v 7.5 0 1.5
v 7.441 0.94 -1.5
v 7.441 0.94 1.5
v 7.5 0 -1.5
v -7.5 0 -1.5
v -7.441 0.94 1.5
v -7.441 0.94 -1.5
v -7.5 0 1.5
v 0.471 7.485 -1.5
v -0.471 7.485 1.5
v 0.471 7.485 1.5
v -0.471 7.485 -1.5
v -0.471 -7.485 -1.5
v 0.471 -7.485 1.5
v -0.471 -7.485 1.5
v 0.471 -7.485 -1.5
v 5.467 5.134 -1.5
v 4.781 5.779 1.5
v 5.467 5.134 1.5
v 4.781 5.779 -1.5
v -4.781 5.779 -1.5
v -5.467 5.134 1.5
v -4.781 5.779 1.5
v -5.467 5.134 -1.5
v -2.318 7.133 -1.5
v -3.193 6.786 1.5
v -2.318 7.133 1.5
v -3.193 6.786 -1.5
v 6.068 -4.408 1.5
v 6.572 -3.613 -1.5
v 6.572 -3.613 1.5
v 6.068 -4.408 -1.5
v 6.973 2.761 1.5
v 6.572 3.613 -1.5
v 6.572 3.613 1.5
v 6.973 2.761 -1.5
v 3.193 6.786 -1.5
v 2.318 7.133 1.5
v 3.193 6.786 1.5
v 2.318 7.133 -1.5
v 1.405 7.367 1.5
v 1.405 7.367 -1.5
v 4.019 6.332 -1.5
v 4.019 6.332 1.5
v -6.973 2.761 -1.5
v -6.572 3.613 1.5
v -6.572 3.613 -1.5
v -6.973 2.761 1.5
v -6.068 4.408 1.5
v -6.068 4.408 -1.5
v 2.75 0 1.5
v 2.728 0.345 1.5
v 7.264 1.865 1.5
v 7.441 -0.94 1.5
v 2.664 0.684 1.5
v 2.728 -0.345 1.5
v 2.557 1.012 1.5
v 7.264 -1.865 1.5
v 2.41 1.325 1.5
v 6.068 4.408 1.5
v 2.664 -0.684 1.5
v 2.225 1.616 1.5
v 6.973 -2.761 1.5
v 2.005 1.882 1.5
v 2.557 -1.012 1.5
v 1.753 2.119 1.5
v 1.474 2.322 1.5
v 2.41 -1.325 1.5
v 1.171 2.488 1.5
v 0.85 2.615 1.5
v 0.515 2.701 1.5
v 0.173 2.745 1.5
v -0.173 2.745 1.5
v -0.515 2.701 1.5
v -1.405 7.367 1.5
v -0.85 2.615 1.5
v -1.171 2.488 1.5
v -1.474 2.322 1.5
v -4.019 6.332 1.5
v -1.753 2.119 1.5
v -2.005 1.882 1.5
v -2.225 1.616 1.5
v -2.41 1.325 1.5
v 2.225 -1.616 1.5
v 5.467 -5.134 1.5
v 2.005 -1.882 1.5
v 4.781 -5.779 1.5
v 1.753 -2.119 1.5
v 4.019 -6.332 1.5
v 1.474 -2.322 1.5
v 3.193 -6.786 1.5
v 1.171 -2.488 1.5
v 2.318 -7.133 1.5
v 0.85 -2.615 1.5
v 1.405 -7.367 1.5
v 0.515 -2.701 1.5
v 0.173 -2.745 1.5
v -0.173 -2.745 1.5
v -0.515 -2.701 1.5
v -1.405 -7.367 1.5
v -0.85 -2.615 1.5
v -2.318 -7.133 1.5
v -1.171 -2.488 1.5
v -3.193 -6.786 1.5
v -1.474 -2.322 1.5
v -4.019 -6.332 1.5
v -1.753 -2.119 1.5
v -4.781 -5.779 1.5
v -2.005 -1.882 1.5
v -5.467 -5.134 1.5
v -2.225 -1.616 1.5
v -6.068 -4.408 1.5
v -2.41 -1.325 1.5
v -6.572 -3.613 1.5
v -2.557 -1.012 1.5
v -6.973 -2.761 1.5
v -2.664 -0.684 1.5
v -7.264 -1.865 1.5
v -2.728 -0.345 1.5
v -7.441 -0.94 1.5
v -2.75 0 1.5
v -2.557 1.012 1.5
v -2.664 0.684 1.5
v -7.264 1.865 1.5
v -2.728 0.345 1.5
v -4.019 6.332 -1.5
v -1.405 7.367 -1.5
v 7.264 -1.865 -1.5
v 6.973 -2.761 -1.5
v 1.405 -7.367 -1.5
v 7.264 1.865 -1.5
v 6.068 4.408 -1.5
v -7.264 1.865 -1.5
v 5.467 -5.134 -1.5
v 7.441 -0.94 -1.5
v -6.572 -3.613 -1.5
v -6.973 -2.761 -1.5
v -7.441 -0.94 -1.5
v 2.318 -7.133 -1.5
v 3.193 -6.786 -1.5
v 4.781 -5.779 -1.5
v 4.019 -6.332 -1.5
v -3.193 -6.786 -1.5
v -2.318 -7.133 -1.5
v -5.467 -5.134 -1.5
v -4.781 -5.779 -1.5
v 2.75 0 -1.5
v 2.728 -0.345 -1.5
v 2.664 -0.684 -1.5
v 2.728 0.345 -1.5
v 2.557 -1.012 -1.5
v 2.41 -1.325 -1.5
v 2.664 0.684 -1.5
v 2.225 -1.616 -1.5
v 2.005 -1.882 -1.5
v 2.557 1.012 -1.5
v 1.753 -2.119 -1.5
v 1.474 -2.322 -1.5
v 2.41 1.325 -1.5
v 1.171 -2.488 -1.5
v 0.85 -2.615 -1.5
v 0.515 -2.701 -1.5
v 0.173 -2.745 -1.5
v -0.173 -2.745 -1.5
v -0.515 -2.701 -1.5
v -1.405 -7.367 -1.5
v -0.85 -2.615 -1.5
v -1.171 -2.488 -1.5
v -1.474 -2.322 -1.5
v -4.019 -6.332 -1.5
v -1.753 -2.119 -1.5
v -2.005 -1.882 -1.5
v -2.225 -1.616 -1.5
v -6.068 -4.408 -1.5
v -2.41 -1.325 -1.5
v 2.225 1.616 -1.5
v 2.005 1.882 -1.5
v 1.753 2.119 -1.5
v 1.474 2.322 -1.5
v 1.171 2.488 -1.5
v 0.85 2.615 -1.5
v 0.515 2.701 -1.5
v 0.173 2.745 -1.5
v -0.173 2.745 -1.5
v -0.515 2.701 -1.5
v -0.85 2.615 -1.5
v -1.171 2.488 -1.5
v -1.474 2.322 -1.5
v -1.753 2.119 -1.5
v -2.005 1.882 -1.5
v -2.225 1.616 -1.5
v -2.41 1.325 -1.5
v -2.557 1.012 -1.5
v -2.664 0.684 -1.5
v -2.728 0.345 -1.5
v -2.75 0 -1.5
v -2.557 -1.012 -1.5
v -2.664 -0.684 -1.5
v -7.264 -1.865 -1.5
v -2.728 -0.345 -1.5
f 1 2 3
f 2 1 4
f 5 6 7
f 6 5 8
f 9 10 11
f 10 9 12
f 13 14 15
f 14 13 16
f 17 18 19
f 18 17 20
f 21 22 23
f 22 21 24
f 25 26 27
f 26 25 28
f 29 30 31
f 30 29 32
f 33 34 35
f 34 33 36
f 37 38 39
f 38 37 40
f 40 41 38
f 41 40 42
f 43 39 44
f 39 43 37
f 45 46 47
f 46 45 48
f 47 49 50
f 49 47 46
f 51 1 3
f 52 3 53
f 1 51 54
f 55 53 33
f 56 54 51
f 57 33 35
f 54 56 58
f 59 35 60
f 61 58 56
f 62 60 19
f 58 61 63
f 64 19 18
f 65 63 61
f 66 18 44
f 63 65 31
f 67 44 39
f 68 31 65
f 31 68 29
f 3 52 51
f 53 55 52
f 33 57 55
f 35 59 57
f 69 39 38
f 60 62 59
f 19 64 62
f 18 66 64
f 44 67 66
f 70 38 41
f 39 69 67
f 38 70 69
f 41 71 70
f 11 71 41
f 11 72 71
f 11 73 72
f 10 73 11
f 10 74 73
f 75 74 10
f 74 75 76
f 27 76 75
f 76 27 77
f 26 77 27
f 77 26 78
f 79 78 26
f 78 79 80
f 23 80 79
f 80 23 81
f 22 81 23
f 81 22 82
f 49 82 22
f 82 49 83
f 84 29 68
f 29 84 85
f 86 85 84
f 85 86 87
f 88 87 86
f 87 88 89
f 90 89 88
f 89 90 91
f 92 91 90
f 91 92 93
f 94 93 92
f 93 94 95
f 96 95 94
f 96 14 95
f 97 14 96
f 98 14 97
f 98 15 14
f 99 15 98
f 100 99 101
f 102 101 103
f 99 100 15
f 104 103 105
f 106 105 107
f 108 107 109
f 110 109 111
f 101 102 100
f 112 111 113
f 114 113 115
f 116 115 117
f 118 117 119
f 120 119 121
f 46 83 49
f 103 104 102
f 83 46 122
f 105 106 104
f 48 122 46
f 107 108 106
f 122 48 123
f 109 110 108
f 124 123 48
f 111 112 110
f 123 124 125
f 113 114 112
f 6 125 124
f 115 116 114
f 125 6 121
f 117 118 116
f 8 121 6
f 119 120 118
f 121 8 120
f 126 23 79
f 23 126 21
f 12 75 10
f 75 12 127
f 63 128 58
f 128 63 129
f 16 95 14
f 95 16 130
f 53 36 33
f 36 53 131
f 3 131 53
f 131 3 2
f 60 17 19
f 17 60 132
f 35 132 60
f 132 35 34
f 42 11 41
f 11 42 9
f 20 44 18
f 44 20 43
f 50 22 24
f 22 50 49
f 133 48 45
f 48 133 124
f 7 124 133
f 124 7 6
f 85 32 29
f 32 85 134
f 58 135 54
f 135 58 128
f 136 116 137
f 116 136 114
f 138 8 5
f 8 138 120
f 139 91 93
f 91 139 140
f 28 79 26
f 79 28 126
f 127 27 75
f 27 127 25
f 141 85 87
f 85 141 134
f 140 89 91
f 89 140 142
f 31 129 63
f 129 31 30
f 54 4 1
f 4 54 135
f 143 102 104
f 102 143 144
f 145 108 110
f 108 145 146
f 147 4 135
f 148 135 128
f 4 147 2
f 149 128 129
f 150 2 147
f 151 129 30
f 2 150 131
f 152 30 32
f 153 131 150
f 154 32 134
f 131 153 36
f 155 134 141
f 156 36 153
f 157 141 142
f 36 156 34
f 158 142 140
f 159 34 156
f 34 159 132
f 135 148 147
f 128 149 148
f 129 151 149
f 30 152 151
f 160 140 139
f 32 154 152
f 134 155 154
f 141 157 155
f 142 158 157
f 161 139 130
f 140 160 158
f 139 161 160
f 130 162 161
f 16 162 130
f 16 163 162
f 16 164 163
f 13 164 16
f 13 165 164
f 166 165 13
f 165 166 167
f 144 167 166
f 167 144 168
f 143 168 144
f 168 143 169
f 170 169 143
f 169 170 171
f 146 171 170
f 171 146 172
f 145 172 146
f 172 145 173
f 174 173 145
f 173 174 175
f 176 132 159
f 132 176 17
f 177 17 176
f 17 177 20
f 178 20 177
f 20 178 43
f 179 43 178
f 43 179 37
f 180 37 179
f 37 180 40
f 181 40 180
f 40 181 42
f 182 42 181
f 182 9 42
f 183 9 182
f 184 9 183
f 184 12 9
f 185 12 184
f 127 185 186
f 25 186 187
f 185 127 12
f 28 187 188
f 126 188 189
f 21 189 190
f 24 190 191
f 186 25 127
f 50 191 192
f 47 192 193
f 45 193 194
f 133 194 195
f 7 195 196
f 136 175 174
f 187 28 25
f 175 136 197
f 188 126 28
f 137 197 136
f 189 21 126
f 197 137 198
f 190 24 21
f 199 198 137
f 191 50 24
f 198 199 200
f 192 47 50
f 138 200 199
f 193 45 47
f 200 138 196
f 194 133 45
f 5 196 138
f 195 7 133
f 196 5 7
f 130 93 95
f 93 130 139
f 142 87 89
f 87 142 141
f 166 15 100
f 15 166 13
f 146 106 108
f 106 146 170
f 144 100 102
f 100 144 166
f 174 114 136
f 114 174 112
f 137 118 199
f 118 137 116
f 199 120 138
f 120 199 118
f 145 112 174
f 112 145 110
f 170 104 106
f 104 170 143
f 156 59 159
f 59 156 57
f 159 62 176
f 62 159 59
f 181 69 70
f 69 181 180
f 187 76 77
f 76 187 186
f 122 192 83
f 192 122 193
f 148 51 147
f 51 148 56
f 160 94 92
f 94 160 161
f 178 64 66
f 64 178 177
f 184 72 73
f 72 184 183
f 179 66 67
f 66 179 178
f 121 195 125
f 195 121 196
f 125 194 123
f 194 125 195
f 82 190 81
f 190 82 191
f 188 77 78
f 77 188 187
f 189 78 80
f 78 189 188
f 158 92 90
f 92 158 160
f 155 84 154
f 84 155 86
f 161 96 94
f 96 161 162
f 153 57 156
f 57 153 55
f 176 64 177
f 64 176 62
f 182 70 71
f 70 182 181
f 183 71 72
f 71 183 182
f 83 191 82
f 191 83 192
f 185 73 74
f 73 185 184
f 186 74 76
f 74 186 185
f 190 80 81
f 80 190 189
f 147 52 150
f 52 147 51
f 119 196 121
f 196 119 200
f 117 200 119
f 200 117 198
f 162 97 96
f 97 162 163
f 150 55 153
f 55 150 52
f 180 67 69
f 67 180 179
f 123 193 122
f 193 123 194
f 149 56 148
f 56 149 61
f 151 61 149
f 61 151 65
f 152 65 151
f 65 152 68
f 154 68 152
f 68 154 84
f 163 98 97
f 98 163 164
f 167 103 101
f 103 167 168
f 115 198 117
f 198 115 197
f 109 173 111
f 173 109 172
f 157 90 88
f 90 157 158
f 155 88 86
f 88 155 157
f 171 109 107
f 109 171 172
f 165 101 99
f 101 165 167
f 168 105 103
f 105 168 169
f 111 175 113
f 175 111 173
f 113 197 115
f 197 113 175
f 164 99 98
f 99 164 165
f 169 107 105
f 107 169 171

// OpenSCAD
$fn = 50;


difference() {
	union() {
		translate(v = [0, 0, -1.5000000000]) {
			cylinder(h = 3, r = 7.5000000000);
		}
	}
	union() {
		translate(v = [0, 0, -100.0000000000]) {
			cylinder(h = 200, r = 2.7500000000);
		}
	}
}
